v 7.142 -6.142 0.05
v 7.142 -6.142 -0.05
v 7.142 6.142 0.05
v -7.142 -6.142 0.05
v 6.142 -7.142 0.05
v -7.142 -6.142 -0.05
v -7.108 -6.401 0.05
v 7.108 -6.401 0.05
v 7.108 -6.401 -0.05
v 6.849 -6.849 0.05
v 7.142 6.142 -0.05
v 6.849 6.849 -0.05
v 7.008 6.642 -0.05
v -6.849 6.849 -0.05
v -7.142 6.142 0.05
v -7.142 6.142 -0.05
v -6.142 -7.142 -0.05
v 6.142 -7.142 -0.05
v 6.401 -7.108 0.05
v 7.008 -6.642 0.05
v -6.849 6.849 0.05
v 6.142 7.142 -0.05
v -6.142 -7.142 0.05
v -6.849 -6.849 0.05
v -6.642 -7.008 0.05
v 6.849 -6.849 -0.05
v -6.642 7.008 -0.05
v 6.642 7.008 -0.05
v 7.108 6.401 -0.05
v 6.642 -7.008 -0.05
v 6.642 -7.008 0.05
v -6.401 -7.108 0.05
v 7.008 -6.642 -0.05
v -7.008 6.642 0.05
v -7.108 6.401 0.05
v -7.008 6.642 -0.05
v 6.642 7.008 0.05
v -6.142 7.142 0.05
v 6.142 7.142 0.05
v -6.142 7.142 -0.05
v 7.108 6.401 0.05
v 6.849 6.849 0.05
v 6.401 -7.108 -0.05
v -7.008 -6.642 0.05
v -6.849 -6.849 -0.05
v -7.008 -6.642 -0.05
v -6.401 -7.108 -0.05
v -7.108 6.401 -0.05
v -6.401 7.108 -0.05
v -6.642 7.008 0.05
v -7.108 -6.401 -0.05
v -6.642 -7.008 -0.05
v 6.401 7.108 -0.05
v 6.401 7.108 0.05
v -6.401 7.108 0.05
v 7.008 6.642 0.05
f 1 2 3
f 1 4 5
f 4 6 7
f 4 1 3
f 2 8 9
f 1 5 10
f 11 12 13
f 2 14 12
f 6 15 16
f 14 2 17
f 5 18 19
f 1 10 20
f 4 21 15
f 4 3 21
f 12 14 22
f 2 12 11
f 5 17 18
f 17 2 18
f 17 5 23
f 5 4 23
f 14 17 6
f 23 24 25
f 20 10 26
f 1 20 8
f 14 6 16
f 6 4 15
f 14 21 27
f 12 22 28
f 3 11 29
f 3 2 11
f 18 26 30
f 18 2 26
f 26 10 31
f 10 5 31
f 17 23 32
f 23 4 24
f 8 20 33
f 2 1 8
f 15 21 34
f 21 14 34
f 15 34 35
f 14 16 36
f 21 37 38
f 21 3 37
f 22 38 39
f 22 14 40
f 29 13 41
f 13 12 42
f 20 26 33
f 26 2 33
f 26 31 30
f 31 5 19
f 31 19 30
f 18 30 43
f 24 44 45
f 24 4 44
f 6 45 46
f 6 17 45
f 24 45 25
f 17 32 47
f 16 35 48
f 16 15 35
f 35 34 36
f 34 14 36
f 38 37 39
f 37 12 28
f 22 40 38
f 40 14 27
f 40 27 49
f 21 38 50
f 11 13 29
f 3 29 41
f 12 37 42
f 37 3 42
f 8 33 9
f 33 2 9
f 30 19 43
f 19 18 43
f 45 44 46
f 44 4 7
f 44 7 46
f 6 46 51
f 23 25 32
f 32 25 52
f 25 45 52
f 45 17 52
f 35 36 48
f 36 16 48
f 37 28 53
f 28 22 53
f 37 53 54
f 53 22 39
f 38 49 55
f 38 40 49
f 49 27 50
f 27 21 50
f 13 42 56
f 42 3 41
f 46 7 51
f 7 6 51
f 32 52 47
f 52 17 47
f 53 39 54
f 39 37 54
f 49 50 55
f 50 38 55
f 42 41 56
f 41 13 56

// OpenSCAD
// file: def.scad
round_radius = 1.25;
sticker_margin = 3;
sticker_round_radius = 1;
total_size = 75;
base_size = (total_size - round_radius * 4) / (4 + sqrt(2));
cut1_dis = base_size * sqrt(2) / 2;
cut2_dis = base_size * (1 + sqrt(2) / 2);
cut2_corner_dis = base_size * (sqrt(2) / 2 * sqrt(3) + 1 / 3 * sqrt(3));
inf = total_size * 10;
// main file
include <def.scad>

module medium_sticker() {
    minkowski() {
        cube([base_size * sqrt(2) - sticker_margin * 2, base_size * sqrt(2) - sticker_margin * 2, 0.05], center = true);
        cylinder(r = sticker_round_radius, h = 0.05, center = true, $fn = 24);
    }
}

medium_sticker();
